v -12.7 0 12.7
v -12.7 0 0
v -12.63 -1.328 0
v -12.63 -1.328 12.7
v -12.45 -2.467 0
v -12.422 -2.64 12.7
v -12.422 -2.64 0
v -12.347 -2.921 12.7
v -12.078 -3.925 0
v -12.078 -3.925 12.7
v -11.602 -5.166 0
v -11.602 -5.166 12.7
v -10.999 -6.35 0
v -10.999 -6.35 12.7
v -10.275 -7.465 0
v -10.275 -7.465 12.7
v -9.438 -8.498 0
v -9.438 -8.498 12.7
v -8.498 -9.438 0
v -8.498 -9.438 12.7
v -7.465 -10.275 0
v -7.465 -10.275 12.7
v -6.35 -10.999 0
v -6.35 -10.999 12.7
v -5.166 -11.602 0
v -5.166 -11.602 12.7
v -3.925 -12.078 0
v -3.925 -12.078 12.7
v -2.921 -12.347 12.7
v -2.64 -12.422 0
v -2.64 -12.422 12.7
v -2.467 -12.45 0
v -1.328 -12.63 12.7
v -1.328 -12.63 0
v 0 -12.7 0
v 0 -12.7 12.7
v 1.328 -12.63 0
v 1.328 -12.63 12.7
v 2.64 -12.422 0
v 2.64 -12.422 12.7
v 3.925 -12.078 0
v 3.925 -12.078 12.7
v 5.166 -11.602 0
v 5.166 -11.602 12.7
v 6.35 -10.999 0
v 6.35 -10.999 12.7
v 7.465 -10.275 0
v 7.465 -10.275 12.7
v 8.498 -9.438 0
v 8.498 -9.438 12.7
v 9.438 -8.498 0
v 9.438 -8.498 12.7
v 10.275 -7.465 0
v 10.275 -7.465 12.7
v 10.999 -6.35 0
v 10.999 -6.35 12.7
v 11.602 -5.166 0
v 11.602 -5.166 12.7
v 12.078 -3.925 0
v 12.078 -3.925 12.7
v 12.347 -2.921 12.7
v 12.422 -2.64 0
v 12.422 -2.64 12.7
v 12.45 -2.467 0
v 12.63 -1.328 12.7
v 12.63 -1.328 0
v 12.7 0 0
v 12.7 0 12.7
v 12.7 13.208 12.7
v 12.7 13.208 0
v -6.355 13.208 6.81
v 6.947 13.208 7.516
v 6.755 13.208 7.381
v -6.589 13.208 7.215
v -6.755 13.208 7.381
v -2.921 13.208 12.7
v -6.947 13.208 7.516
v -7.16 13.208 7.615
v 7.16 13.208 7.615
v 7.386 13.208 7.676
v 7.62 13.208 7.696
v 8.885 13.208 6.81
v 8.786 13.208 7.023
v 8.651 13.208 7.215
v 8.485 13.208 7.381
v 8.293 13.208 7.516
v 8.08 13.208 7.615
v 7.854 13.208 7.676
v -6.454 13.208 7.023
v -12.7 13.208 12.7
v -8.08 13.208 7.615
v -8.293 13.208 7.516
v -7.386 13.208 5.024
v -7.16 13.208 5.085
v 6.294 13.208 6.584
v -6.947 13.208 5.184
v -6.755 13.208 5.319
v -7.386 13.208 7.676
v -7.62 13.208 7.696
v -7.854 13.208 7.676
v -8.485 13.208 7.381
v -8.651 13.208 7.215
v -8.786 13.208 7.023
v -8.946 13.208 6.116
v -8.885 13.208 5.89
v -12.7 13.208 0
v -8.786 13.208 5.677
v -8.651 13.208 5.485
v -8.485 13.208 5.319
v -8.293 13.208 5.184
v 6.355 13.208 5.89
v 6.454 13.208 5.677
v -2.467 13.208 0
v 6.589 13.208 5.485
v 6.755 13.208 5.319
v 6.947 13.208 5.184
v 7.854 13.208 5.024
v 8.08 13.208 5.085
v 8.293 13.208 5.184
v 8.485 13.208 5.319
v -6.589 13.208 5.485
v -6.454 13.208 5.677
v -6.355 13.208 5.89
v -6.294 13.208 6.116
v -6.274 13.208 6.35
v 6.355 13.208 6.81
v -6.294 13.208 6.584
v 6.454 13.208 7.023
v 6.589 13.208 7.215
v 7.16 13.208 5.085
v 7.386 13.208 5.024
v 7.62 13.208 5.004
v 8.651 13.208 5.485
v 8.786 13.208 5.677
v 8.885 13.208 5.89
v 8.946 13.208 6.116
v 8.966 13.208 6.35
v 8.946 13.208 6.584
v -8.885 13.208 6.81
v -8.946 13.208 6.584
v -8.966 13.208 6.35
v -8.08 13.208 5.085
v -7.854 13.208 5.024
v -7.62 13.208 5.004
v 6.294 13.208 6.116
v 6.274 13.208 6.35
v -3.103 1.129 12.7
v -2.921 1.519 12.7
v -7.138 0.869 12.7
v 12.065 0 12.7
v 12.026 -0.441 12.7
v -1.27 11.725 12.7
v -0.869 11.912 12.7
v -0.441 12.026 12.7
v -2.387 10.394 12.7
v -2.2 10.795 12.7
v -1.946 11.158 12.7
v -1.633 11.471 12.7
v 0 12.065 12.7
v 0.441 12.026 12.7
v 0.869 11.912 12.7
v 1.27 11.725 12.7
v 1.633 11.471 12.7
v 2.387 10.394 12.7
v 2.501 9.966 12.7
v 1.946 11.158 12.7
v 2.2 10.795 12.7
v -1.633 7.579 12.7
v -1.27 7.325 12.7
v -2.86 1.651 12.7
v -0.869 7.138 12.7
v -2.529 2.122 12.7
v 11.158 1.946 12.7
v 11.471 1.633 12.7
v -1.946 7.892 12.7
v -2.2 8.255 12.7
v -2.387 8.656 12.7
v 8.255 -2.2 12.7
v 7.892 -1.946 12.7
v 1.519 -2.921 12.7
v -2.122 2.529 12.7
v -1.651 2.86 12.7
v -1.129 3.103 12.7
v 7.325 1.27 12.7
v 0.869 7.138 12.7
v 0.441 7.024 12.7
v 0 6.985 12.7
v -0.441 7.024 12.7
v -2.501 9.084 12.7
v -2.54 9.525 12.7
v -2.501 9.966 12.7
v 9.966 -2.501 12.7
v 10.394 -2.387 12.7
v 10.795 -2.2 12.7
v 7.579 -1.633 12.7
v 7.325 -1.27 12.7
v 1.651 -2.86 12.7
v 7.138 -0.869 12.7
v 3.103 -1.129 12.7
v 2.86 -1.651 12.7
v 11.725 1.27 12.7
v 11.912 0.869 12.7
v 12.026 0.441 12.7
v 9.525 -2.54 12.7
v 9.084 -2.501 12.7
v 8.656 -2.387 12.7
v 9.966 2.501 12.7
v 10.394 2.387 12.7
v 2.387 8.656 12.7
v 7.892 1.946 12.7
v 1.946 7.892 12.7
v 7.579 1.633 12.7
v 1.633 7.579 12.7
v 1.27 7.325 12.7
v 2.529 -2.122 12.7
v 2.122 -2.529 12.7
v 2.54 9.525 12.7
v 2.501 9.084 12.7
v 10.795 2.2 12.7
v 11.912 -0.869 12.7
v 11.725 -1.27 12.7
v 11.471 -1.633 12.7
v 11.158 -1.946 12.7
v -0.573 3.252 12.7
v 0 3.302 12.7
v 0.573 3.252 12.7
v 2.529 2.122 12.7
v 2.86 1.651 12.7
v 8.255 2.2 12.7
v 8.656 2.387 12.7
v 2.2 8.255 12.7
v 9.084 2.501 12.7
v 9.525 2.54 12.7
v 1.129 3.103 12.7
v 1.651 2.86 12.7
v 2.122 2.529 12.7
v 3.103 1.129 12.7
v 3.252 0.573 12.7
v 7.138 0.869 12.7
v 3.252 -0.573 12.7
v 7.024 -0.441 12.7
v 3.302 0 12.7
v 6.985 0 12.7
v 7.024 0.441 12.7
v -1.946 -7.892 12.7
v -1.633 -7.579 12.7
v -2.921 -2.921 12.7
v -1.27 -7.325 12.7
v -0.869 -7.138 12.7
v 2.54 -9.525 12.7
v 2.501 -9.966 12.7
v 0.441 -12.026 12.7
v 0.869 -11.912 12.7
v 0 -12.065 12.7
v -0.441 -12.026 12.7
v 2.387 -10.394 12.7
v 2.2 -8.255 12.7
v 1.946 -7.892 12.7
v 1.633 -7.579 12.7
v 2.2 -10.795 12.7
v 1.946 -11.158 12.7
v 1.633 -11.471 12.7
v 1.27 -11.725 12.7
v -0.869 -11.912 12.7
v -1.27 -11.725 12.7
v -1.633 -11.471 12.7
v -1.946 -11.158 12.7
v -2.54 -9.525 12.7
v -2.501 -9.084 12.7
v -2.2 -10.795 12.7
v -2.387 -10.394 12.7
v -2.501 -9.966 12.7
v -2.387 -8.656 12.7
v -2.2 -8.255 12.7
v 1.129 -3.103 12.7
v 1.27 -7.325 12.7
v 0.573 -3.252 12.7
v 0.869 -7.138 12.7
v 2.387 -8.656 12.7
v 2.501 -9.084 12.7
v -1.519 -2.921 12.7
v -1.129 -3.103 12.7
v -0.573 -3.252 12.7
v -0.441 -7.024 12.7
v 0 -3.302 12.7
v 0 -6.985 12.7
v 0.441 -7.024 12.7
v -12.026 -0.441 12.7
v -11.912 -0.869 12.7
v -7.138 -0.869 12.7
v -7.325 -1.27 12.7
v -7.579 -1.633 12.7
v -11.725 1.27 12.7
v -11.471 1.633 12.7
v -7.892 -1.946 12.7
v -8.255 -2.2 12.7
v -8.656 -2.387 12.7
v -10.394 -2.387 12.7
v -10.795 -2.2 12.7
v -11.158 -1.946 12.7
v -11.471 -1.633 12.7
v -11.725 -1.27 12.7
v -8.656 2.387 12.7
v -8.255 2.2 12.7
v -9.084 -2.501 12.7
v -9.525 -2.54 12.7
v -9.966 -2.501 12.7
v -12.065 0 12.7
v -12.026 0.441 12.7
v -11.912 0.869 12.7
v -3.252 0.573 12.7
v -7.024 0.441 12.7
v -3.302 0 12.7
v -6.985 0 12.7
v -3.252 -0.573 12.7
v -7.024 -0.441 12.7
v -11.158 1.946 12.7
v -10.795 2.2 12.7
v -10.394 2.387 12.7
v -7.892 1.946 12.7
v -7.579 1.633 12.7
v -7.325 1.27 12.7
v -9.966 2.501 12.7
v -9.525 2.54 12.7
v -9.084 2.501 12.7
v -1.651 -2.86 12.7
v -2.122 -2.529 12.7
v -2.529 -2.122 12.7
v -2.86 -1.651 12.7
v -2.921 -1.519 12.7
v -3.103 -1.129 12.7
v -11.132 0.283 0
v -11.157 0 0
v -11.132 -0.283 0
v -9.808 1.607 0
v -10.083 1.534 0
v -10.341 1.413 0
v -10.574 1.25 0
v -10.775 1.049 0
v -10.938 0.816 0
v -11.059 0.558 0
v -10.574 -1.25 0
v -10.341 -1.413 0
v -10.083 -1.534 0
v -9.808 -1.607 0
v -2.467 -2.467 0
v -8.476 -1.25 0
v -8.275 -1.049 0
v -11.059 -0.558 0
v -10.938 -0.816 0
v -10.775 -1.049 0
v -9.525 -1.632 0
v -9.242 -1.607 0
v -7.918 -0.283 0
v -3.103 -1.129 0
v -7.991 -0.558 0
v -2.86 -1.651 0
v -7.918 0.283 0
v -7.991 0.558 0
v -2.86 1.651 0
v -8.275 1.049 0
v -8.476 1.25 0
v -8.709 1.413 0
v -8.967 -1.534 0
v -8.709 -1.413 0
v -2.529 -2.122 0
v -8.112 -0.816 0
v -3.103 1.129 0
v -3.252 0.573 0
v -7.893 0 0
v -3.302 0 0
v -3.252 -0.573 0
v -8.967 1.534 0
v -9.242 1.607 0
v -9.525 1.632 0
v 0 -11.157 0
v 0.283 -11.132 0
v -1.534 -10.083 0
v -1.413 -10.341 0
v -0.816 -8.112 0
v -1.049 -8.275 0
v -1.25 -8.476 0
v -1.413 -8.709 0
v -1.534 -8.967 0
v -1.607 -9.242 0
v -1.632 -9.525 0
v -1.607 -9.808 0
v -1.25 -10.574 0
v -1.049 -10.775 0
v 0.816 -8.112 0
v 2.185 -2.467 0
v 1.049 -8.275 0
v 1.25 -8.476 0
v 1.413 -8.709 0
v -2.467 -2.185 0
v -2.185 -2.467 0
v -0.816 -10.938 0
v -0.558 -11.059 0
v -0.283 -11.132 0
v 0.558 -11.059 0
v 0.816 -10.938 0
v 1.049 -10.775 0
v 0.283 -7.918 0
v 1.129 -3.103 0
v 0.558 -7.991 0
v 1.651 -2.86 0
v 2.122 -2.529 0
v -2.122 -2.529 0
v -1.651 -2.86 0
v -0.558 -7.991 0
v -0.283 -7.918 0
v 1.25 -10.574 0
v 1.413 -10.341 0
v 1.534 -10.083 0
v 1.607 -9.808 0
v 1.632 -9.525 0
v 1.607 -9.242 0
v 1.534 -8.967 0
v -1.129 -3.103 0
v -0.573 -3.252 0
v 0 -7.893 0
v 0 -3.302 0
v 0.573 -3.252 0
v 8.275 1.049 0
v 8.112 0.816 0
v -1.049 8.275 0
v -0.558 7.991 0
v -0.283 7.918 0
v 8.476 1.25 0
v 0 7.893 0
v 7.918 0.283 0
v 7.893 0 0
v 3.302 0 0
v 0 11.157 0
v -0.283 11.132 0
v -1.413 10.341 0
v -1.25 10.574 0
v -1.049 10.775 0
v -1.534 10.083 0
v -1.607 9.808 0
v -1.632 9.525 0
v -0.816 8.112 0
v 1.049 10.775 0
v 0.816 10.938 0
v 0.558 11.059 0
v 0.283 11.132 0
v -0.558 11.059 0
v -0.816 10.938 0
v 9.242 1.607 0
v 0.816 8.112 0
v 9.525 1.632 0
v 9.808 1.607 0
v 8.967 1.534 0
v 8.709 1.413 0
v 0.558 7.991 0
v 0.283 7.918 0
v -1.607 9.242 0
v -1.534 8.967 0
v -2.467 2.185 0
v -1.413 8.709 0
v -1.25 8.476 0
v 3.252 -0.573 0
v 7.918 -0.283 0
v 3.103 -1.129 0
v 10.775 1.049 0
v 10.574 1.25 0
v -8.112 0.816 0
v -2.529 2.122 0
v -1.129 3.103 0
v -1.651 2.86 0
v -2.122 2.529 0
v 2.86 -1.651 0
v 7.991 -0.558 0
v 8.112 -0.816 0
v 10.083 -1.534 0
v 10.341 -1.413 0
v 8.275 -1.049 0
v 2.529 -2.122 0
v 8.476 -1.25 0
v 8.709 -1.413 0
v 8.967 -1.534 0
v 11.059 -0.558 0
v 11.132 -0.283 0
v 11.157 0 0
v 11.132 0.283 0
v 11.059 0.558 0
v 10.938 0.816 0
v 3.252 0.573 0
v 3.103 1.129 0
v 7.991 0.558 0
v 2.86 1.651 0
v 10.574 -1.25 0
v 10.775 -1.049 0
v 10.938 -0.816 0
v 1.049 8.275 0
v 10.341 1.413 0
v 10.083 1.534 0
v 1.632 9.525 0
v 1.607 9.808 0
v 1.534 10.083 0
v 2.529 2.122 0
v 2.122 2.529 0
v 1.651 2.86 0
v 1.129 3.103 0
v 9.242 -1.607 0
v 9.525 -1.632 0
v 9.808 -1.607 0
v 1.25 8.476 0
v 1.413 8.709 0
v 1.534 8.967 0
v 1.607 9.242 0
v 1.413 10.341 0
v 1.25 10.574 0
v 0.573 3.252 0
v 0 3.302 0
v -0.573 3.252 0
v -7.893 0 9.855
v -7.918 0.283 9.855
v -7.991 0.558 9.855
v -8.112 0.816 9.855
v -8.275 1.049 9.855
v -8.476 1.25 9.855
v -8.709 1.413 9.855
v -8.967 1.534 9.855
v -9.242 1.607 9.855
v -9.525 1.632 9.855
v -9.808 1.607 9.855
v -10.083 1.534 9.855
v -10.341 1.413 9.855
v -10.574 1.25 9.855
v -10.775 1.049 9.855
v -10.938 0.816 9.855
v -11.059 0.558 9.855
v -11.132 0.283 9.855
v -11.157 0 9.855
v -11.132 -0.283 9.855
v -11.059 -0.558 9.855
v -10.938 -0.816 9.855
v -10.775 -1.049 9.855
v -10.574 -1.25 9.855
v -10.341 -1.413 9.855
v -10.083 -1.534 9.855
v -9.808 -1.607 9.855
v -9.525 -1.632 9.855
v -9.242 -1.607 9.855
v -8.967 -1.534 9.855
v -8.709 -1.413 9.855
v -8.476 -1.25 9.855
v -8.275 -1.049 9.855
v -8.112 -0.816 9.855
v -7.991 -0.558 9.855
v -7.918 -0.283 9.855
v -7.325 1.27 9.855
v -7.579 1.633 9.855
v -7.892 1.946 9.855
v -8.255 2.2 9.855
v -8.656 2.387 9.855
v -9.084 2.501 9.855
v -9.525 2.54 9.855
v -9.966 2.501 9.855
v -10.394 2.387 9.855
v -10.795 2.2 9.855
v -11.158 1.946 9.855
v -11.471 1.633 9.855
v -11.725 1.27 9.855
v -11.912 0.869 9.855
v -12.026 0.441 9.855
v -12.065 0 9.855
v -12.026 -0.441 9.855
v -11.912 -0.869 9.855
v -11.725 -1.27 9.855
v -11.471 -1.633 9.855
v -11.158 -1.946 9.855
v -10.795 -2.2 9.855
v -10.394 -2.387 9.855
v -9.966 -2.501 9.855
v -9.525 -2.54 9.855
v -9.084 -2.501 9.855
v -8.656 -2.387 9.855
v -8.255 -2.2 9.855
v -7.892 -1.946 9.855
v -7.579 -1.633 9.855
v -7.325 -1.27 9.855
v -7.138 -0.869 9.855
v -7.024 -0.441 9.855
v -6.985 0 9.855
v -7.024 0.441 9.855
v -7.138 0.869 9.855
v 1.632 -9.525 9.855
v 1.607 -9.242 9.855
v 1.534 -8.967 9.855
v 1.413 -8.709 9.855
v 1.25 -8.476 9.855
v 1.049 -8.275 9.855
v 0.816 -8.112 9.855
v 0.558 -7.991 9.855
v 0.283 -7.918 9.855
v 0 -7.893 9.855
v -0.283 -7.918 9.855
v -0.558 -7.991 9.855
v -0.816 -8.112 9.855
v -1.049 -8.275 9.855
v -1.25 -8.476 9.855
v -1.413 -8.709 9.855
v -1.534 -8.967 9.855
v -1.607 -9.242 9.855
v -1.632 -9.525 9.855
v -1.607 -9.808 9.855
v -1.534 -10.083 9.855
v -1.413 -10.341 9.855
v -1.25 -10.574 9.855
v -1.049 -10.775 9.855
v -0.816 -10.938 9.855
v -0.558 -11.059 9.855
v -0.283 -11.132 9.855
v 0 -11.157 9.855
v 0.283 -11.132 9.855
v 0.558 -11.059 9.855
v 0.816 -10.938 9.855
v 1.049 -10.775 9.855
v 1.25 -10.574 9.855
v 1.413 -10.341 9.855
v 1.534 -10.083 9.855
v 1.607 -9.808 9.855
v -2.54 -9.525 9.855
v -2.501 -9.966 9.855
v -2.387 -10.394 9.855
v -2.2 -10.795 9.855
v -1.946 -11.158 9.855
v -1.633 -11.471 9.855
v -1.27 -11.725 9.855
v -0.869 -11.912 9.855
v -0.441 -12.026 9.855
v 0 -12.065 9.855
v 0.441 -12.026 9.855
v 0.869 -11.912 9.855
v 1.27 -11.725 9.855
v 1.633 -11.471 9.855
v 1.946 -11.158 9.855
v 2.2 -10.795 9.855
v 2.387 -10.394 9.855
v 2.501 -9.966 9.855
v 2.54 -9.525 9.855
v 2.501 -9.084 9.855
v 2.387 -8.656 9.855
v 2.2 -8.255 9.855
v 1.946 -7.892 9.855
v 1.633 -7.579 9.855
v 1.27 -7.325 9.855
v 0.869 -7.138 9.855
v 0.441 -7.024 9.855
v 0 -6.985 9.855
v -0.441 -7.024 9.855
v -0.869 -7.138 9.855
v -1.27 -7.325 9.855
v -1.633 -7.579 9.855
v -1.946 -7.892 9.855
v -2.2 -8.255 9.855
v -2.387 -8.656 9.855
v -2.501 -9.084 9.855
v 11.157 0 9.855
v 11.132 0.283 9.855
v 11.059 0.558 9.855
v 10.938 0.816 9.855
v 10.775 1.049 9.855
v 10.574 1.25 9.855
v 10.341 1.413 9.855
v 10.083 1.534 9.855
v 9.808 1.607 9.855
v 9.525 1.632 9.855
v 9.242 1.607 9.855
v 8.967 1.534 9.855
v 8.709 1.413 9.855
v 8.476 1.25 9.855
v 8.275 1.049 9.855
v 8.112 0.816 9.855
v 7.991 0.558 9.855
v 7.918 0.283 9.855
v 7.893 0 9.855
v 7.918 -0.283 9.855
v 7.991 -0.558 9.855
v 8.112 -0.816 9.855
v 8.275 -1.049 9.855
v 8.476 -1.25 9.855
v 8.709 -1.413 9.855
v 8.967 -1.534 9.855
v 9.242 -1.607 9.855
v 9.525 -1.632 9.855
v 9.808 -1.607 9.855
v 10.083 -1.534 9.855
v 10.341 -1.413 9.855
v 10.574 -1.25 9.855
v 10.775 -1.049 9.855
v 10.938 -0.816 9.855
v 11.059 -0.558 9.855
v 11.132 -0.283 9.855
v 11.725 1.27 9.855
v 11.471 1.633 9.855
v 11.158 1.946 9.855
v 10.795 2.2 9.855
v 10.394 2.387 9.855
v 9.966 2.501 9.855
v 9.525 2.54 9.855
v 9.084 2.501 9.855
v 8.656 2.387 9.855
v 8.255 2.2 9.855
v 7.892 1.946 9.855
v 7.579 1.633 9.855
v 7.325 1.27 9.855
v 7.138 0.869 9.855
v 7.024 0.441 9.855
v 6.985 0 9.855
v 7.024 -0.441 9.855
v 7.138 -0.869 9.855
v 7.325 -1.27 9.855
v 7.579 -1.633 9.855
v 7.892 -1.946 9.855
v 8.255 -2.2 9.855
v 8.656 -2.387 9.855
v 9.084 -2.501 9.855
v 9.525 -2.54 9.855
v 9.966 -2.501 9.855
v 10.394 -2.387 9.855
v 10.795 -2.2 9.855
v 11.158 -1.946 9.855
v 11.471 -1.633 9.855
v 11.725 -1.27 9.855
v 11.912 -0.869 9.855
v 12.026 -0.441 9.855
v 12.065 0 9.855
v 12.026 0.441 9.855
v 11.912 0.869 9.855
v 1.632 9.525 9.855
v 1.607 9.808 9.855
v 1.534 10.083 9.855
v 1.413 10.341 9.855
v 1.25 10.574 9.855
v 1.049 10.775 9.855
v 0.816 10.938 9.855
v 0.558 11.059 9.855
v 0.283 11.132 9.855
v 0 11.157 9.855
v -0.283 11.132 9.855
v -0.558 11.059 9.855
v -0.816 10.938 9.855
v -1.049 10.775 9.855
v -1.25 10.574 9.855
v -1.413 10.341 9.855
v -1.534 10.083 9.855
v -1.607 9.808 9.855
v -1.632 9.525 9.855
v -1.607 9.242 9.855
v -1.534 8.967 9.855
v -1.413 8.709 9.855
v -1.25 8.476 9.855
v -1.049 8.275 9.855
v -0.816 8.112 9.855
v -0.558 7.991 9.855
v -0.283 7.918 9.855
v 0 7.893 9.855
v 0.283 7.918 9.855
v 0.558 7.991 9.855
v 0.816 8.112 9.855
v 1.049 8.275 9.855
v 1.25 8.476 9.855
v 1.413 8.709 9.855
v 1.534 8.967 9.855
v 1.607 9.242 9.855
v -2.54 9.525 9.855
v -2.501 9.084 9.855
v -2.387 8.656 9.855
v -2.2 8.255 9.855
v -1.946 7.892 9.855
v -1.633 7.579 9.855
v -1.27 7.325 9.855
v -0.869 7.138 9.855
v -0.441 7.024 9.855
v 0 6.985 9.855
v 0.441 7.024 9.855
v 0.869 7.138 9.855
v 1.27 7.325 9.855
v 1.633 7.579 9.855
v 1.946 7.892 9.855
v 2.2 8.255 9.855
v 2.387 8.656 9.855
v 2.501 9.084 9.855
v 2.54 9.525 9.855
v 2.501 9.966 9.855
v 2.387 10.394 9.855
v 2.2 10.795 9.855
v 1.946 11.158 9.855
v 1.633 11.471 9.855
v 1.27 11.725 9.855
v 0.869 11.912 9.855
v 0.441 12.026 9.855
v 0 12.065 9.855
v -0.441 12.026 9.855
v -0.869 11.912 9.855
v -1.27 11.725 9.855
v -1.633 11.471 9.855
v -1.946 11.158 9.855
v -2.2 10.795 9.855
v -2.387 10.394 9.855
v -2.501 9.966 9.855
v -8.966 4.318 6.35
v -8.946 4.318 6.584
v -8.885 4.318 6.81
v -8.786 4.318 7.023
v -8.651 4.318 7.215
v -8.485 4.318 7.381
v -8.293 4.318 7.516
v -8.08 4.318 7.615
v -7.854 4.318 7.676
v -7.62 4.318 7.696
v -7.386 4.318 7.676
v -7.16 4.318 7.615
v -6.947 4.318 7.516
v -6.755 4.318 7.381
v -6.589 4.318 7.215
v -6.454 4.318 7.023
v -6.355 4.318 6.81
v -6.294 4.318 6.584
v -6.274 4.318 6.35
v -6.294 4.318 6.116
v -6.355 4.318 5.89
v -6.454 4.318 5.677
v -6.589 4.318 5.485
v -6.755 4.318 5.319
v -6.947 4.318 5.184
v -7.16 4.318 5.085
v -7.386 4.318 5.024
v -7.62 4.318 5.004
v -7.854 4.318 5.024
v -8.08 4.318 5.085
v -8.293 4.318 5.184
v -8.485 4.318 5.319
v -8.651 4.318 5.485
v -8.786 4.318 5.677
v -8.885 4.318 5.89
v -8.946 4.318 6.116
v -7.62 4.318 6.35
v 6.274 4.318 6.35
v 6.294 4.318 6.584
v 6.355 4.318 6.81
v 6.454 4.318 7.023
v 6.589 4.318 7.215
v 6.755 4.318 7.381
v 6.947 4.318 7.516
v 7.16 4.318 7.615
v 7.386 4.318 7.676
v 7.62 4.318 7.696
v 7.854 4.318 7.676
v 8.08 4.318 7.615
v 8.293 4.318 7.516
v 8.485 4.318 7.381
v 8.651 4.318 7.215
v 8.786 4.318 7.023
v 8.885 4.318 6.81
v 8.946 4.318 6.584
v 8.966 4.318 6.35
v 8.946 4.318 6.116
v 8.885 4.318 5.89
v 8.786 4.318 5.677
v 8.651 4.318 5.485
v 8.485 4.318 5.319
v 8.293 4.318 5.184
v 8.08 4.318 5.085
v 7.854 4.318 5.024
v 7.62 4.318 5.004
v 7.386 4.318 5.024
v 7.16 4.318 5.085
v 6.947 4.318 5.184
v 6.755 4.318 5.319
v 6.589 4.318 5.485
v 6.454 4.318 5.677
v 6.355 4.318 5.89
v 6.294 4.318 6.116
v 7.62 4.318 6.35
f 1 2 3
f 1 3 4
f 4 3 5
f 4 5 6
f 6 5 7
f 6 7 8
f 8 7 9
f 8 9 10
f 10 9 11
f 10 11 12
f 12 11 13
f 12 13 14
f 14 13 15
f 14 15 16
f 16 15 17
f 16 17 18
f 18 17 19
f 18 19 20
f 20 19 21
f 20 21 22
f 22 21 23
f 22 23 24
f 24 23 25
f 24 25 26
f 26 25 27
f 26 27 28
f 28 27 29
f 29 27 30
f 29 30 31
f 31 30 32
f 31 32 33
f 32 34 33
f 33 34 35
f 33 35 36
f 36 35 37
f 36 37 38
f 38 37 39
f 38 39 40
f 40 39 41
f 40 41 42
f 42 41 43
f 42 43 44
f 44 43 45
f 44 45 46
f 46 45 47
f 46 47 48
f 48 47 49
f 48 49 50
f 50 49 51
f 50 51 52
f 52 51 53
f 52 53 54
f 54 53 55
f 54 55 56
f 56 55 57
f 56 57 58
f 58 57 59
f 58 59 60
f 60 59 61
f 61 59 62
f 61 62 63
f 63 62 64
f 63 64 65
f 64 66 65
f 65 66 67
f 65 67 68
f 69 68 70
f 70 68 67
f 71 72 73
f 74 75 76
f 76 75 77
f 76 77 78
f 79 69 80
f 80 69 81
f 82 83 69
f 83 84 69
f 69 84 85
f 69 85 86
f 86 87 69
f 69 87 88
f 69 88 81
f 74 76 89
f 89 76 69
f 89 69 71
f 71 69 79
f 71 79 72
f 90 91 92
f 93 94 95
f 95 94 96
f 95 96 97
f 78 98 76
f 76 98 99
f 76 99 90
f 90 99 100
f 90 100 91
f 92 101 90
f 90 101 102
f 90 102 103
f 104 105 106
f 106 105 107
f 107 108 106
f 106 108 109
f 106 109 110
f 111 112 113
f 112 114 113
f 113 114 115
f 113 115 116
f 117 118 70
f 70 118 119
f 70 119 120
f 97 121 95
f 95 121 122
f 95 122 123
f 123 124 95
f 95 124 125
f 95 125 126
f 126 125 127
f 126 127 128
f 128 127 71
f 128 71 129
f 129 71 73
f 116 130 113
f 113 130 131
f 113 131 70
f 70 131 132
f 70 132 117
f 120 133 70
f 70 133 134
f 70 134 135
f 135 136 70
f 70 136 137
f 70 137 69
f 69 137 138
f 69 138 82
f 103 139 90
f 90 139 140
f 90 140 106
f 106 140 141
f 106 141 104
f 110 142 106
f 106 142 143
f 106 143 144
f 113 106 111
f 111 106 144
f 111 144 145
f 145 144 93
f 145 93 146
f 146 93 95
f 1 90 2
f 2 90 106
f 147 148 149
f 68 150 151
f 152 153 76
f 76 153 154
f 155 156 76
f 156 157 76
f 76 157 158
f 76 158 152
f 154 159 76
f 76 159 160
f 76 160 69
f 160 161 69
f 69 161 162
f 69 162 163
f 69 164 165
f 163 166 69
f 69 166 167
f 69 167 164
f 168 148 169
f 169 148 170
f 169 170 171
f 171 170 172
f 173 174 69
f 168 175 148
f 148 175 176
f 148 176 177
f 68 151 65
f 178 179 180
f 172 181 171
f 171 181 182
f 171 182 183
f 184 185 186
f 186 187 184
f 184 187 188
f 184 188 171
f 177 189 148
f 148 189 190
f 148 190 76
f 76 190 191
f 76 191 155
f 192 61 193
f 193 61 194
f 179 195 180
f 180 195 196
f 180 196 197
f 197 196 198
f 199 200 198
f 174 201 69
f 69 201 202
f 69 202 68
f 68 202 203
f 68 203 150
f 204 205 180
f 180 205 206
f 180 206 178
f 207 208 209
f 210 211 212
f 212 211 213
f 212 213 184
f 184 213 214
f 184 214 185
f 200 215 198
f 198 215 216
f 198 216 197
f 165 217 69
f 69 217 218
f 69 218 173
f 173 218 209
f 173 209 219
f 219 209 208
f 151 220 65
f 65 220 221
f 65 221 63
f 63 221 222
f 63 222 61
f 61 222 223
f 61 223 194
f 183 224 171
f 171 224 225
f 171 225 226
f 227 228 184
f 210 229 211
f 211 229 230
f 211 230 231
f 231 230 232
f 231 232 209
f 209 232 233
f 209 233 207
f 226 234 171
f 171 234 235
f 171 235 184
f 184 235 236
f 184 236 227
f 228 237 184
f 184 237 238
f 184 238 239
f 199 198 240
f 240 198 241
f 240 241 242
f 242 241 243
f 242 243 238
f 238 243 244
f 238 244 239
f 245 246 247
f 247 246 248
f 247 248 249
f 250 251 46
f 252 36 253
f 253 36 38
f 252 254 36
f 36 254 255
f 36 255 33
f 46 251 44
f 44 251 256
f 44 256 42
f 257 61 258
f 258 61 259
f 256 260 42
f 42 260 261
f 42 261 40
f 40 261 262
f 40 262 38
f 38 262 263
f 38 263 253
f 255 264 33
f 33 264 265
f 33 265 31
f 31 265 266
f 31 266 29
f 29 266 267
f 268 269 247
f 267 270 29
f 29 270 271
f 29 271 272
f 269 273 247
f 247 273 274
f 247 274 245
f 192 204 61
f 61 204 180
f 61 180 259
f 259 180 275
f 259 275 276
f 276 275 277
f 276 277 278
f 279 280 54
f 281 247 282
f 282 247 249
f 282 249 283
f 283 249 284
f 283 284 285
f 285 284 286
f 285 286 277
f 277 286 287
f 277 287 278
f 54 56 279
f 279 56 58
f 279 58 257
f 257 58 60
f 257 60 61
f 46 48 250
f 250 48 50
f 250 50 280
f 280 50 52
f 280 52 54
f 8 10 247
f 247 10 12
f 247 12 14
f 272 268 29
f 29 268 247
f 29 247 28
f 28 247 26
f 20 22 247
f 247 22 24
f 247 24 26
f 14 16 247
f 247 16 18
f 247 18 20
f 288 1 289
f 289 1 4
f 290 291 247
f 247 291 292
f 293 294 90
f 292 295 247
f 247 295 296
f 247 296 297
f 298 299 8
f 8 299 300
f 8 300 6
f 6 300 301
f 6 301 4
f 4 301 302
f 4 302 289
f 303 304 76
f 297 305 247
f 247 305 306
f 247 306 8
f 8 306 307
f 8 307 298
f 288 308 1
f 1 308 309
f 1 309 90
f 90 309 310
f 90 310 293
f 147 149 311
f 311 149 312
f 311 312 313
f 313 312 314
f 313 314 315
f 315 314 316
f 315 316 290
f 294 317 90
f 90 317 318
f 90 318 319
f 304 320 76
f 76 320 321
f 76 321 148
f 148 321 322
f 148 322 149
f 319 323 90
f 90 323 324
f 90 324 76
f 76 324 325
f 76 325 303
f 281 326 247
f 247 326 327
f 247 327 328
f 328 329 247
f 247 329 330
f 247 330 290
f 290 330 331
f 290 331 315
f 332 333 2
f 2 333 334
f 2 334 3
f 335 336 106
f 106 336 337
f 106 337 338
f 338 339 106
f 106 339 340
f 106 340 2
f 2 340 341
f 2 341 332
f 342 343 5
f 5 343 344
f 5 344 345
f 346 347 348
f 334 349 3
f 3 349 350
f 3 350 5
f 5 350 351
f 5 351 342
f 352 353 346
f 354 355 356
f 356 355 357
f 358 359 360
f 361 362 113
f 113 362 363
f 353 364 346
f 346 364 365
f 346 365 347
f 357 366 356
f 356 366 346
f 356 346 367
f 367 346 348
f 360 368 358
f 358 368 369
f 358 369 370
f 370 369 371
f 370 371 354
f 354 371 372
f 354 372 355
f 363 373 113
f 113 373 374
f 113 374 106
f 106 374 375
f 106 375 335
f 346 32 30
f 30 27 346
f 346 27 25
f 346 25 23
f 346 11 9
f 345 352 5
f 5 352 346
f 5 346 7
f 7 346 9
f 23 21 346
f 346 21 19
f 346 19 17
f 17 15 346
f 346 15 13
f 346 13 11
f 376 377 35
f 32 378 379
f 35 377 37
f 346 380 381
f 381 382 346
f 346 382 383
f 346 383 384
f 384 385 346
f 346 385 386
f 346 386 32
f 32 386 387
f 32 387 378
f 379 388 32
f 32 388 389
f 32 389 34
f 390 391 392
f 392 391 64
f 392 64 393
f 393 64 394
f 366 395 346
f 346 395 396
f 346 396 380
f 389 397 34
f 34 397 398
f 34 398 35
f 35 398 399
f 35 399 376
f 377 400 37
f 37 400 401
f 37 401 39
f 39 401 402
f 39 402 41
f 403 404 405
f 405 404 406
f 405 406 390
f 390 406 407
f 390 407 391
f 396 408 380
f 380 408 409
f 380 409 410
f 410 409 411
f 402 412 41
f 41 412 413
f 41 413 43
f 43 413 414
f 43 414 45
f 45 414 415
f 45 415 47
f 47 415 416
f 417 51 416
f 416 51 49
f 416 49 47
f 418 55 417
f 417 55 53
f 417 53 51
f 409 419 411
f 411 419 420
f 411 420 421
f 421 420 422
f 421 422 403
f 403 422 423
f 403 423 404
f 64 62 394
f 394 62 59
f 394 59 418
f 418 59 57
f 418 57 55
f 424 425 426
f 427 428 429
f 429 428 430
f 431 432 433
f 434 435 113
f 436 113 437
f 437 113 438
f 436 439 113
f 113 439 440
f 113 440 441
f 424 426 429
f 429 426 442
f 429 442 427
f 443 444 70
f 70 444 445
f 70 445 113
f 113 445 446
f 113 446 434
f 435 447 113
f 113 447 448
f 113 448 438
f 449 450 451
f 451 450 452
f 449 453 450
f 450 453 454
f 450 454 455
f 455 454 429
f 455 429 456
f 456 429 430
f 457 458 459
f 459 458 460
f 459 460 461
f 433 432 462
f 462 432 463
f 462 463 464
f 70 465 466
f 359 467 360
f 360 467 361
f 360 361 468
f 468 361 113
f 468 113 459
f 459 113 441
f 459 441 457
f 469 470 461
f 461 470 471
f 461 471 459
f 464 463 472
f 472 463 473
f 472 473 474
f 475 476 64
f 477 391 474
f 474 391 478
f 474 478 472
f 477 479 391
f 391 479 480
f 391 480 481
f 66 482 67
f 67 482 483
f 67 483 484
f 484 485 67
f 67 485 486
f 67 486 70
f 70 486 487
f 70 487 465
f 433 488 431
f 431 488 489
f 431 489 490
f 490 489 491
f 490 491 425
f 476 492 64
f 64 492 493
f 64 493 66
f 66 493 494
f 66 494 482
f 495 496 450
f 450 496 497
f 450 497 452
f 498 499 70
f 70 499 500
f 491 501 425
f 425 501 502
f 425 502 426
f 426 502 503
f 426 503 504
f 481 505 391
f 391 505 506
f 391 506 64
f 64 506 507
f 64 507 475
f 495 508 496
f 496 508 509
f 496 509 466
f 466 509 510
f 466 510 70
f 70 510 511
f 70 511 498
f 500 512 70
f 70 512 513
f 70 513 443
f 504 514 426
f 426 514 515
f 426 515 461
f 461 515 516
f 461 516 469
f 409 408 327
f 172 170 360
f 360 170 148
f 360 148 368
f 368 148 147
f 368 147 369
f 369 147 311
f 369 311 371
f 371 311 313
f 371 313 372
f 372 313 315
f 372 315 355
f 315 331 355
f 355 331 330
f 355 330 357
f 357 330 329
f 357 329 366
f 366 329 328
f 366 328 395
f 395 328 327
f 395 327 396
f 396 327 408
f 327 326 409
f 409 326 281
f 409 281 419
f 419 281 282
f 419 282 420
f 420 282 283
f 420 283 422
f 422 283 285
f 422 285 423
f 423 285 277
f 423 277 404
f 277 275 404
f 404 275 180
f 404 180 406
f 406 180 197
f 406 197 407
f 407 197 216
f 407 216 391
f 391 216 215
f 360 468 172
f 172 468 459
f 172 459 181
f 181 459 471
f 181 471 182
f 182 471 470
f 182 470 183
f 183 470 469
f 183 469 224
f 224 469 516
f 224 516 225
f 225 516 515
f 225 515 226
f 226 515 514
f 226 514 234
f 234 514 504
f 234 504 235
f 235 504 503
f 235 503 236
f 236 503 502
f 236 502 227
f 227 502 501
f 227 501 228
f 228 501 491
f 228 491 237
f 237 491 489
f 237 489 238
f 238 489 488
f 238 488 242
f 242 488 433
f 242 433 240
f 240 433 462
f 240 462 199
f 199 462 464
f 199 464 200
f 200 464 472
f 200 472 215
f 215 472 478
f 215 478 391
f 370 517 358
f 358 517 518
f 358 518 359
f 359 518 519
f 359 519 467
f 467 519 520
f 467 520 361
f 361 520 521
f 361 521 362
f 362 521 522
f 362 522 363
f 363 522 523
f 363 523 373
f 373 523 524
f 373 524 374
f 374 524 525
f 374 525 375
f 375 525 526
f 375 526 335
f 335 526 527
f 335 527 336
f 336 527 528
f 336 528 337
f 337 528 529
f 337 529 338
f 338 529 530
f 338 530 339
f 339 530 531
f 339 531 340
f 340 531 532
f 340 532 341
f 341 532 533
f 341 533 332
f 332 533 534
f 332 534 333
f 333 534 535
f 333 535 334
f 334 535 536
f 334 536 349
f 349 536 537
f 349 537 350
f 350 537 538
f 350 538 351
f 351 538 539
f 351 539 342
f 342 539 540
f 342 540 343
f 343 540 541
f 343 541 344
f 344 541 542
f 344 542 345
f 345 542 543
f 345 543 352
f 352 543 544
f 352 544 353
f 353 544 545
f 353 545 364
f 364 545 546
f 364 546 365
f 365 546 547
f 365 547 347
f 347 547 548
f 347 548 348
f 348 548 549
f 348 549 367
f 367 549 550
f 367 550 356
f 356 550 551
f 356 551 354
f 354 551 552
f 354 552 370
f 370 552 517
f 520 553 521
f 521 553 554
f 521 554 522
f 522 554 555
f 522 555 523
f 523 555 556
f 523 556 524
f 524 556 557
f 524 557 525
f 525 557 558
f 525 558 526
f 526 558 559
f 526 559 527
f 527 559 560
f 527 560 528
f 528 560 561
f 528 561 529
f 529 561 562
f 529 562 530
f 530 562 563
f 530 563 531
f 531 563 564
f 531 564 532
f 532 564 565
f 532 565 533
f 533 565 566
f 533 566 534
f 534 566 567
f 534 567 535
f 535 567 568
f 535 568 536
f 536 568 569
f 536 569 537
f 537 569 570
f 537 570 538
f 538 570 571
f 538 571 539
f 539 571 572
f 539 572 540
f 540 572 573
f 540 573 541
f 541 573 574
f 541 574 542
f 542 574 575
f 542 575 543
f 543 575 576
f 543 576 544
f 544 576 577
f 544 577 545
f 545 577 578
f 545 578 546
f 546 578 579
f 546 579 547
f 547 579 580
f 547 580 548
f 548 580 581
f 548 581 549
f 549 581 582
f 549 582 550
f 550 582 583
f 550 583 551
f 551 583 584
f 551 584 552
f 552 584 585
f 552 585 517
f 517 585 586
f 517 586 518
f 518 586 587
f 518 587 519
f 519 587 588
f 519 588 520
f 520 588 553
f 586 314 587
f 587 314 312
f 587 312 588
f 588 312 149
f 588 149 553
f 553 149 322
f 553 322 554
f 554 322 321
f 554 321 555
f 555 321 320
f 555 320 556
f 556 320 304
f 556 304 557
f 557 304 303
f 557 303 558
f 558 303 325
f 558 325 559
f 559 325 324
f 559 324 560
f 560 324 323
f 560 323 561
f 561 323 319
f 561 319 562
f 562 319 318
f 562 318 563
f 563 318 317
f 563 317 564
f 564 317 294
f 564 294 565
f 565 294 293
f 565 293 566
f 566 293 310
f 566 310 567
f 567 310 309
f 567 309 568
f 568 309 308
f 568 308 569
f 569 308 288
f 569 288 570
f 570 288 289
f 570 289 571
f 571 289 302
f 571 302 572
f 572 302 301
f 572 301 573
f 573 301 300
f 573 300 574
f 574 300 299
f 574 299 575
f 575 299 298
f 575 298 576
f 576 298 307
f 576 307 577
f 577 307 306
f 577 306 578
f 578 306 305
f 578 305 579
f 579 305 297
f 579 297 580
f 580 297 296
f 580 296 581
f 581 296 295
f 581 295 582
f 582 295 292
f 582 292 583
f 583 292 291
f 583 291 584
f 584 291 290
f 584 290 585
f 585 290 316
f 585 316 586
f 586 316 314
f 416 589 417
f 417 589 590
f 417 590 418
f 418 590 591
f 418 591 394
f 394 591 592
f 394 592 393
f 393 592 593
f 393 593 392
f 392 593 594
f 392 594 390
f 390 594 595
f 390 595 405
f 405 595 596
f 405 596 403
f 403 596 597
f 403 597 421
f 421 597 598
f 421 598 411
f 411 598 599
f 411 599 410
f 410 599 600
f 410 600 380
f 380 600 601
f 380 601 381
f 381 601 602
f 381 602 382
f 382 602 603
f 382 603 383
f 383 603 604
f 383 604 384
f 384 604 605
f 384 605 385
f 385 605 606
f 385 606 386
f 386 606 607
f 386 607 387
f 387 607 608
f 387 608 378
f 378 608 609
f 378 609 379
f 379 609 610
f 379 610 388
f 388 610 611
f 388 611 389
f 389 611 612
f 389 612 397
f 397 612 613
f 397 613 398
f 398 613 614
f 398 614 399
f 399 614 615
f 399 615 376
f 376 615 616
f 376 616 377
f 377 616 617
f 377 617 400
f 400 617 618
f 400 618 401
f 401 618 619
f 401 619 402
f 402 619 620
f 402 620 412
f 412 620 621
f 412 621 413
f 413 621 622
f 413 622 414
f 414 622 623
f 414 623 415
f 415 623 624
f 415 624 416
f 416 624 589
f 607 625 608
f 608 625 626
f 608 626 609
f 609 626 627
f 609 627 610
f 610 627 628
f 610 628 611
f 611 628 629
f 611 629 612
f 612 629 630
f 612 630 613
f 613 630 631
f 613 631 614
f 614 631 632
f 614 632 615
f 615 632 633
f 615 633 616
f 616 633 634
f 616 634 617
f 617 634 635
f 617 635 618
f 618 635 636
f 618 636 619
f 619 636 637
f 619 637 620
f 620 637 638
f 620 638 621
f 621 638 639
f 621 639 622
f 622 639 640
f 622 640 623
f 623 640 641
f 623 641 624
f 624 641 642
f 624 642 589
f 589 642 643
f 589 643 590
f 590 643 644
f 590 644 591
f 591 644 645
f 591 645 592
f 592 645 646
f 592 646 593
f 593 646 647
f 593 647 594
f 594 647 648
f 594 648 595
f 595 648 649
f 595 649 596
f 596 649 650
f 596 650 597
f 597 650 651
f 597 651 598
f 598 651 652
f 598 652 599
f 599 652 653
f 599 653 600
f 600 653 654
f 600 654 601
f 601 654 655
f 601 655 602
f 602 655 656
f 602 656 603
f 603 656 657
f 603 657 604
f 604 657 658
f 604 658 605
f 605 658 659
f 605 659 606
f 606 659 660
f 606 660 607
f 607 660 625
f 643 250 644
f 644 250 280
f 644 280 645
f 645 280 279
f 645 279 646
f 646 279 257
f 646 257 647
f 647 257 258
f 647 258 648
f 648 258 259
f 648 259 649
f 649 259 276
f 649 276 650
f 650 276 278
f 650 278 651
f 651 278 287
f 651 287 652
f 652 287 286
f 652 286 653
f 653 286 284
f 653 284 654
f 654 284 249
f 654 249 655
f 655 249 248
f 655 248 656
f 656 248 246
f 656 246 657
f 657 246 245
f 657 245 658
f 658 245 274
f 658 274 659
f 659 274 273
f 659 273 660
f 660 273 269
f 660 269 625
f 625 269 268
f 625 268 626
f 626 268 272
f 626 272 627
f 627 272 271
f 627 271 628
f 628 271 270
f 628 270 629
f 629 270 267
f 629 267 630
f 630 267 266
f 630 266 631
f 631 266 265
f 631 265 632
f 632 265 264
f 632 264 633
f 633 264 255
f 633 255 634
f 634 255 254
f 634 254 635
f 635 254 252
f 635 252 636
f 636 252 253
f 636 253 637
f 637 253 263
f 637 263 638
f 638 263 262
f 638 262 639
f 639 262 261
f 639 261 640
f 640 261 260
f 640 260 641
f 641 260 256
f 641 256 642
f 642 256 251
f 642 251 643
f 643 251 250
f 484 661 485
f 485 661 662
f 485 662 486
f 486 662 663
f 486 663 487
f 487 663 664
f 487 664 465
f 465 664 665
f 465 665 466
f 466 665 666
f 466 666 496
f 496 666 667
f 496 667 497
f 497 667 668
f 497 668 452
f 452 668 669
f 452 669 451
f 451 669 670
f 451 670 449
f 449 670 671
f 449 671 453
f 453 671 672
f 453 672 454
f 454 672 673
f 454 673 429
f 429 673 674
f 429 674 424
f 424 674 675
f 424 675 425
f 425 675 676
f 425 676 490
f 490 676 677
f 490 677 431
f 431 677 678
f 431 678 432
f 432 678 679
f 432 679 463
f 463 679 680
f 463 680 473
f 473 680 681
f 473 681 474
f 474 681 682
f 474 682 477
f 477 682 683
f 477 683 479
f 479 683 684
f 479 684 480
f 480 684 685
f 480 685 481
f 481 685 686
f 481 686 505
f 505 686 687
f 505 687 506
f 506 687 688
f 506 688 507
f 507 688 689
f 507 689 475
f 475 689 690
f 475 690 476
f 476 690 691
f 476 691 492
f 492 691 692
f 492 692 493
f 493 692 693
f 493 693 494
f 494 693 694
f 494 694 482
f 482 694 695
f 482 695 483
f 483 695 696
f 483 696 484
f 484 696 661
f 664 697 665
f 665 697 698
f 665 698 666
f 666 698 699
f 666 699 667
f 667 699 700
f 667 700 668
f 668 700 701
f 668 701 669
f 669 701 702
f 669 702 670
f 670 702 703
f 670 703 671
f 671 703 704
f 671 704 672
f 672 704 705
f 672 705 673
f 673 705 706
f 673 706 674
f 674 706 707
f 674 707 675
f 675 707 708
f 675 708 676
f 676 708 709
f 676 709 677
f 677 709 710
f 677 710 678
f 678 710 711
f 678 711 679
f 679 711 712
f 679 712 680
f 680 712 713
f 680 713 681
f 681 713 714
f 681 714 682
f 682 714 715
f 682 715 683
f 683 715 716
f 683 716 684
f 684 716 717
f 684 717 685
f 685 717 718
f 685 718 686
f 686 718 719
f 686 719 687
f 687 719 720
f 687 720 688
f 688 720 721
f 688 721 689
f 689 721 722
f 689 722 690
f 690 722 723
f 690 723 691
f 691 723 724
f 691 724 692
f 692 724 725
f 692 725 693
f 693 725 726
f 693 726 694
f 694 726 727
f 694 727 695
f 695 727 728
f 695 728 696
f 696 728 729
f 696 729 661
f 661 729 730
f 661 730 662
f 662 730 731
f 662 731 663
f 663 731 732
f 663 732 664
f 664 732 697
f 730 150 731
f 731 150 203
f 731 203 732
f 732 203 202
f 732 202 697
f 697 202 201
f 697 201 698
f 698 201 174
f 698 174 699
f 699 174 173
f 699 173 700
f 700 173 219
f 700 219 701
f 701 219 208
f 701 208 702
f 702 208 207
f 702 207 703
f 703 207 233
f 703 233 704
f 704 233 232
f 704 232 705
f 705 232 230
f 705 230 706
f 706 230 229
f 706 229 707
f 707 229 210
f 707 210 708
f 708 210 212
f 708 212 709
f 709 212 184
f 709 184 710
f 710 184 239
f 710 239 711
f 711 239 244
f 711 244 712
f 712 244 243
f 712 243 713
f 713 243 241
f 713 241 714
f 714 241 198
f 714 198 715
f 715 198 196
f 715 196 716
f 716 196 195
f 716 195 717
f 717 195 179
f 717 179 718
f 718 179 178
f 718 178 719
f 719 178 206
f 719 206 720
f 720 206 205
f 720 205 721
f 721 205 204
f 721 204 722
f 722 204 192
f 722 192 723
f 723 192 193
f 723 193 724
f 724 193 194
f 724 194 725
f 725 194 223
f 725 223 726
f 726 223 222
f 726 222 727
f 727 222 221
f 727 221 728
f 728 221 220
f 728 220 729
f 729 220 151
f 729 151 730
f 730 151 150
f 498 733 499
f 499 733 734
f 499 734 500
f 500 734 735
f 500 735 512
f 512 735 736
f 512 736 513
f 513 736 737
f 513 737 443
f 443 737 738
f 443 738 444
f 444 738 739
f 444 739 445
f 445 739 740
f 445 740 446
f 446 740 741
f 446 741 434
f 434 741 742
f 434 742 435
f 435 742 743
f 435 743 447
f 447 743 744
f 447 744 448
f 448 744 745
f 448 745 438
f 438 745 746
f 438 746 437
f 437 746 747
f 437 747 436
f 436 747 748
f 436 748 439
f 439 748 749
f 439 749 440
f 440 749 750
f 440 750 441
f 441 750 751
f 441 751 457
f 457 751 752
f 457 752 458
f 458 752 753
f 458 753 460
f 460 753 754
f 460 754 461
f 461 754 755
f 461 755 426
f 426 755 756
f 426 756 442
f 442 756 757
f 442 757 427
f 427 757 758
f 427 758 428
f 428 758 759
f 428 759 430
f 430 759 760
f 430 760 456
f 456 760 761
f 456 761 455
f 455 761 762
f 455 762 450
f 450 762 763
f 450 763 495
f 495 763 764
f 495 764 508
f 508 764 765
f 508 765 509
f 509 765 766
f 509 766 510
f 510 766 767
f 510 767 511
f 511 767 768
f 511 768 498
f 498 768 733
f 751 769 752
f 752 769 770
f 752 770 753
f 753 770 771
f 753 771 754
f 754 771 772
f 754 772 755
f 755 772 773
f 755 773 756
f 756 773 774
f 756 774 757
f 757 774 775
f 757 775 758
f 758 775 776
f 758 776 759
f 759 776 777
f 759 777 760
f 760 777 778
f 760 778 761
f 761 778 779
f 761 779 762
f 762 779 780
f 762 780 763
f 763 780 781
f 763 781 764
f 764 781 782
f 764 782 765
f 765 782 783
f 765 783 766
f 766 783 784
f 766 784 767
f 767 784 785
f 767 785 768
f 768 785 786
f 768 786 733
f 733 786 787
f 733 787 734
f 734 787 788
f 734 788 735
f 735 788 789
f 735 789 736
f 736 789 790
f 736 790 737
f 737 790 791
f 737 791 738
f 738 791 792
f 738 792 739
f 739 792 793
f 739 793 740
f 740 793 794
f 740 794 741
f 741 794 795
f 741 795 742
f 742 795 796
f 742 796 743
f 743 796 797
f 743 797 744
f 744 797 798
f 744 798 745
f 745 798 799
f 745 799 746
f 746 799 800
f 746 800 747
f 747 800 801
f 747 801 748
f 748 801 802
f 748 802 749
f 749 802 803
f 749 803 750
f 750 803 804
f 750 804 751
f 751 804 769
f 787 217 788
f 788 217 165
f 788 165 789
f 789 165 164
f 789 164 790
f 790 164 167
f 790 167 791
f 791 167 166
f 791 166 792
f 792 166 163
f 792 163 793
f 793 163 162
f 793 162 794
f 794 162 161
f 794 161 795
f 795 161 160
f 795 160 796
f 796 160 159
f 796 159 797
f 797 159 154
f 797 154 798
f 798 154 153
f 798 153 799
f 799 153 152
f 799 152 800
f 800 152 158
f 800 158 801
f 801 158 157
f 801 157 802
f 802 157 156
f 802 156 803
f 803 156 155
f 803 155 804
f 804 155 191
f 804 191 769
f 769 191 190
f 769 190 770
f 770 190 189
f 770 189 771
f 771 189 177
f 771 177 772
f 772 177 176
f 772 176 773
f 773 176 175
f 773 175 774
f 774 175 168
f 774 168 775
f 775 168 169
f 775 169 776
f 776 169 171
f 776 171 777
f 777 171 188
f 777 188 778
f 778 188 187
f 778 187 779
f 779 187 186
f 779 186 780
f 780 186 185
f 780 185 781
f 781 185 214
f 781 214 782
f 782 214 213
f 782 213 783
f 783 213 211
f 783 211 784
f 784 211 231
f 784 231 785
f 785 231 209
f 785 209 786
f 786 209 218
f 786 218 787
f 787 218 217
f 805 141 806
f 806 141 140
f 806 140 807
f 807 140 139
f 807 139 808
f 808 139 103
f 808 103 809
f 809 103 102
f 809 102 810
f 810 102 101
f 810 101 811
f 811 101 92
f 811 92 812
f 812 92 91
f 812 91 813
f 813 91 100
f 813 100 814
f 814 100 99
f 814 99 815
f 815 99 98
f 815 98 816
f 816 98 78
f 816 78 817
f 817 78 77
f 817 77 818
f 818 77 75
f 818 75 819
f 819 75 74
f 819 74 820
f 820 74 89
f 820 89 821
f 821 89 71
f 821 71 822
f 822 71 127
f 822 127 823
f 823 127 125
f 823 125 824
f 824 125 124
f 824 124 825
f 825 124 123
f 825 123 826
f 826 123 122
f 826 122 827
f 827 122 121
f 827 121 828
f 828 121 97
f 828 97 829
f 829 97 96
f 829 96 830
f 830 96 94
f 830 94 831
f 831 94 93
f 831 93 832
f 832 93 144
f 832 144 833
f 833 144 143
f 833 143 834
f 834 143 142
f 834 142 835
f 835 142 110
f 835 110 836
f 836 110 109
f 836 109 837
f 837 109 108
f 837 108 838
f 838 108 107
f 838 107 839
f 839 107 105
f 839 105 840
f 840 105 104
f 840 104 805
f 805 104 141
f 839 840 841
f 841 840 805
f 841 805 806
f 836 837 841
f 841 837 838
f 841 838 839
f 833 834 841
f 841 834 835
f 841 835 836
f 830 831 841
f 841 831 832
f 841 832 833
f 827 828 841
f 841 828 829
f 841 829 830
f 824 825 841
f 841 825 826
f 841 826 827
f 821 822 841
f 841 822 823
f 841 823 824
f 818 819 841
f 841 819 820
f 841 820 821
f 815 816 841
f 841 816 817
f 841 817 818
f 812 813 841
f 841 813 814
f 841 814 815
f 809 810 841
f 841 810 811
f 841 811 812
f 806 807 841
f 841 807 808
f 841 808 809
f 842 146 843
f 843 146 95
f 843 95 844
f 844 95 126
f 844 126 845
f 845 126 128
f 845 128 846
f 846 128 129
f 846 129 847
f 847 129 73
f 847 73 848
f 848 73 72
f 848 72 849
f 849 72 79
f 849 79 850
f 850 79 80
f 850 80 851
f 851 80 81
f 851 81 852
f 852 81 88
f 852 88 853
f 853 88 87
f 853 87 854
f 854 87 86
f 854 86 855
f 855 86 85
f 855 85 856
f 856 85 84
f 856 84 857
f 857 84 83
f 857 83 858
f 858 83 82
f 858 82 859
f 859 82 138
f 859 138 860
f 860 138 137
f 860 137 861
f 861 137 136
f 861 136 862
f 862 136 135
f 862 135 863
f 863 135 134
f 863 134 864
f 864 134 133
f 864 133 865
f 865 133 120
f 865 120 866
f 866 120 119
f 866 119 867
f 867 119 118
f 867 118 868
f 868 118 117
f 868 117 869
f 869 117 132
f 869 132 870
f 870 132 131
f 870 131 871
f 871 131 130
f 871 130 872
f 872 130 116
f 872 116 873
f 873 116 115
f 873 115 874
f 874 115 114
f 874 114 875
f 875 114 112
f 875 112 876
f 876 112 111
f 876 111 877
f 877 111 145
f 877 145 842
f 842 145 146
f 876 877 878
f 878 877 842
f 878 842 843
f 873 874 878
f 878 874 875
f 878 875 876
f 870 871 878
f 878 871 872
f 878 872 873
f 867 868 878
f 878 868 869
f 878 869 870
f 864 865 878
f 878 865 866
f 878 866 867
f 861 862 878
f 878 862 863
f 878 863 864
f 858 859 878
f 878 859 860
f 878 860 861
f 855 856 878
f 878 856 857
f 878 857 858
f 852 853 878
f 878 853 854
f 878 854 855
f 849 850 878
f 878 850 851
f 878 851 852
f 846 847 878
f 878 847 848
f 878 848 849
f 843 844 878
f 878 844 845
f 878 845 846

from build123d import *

# Parameters (mm, degrees)
BOSS_EXTRUDE1_DEPTH                            = 12.7
SKETCH2_R                                      = 3.302
CUT_EXTRUDE1_DEPTH                             = 12.7
CBORE_FOR_4_SOCKET_HEAD_CAP_SCREW1_D           = 3.2639
CBORE_FOR_4_SOCKET_HEAD_CAP_SCREW1_CBORE_D     = 5.08
CBORE_FOR_4_SOCKET_HEAD_CAP_SCREW1_CBORE_DEPTH = 2.8448
SKETCH9_R                                      = 1.3462
CUT_EXTRUDE3_DEPTH                             = 8.89


with BuildPart() as part:
    # Sketch1 → Boss-Extrude1 (new body)
    with BuildSketch(Plane.XY):
        with BuildLine():
            Line((-12.7, 0), (-12.7, 13.208))
            Line((-12.7, 13.208), (12.7, 13.208))
            Line((12.7, 13.208), (12.7, 0))
            ThreePointArc((12.7, 0), (0, -12.7), (-12.7, 0))
        make_face()
    extrude(amount=BOSS_EXTRUDE1_DEPTH)

    # Sketch2 → Cut-Extrude1 (cut)
    with BuildSketch(Plane.XY.offset(12.7)):
        Circle(SKETCH2_R)
    extrude(amount=-CUT_EXTRUDE1_DEPTH, mode=Mode.SUBTRACT)

    # CBORE for #4 Socket Head Cap Screw1 (through all)
    with Locations(Plane.XY.offset(12.7)):
        with Locations((-9.525, 0), (0, 9.525), (9.525, 0), (0, -9.525)):
            CounterBoreHole(CBORE_FOR_4_SOCKET_HEAD_CAP_SCREW1_D / 2, CBORE_FOR_4_SOCKET_HEAD_CAP_SCREW1_CBORE_D / 2, CBORE_FOR_4_SOCKET_HEAD_CAP_SCREW1_CBORE_DEPTH)

    # Sketch9 → Cut-Extrude3 (cut)
    with BuildSketch(Plane(origin=(0, 13.208, 0), x_dir=(1, 0, 0), z_dir=(0, 1, 0))):
        with Locations((-7.62, -6.35)):
            Circle(SKETCH9_R)
        with Locations((7.62, -6.35)):
            Circle(SKETCH9_R)
    extrude(amount=-CUT_EXTRUDE3_DEPTH, mode=Mode.SUBTRACT)


solid = part.part
